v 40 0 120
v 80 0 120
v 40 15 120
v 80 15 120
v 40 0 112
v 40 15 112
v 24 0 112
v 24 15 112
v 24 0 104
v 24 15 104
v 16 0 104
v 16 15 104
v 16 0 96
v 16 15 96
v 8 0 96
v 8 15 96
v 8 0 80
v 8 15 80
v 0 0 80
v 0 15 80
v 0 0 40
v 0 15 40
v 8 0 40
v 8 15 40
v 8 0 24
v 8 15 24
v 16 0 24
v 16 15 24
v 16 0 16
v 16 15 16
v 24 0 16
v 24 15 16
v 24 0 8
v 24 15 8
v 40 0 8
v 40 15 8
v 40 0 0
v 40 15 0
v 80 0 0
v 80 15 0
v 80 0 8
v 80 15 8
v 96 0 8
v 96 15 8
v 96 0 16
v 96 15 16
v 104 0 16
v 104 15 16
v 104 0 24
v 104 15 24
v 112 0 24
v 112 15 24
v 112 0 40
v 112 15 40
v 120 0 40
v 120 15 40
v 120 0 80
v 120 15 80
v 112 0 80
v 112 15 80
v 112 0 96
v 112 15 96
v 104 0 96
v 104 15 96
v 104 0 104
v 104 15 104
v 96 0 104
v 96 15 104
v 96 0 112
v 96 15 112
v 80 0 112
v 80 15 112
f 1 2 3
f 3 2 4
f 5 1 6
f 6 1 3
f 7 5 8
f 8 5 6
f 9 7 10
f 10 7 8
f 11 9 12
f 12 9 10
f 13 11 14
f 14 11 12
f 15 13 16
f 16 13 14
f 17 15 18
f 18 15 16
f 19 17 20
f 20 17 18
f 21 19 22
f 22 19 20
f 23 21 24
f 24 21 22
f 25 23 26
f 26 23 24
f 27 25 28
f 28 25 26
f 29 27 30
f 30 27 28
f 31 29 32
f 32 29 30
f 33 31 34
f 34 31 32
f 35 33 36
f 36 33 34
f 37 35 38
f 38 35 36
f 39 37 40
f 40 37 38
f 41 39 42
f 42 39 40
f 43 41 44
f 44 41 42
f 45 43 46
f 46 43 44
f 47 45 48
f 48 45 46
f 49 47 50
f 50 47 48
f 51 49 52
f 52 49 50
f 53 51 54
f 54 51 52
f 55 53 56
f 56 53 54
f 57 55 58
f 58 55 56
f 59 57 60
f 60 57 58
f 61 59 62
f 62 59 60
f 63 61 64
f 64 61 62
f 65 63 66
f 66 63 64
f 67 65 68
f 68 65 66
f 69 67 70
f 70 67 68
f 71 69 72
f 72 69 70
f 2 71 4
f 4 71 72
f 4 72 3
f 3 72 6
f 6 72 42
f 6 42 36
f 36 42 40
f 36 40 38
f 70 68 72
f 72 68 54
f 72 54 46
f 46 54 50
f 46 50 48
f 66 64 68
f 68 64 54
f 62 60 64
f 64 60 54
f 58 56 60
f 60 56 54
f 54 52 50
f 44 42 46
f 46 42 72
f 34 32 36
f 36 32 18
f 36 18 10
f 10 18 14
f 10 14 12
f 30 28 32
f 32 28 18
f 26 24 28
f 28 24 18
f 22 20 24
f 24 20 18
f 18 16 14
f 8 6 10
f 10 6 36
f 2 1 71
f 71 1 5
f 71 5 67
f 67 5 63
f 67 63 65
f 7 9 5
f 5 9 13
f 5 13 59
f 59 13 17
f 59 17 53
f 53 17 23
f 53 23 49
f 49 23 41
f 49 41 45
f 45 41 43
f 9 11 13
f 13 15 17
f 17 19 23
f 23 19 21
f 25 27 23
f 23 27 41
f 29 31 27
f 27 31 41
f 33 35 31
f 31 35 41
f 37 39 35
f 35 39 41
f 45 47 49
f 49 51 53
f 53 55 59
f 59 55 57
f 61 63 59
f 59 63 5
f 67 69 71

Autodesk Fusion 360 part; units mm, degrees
sketch "Sketch1" plane through (0, 0, 0) normal (0, 1, 0) x (1, 0, 0)
  line L0 (0, 0) -> (-8, 0)
  line L1 (0, 0) -> (0, -8)
  line L2 (0, 0) -> (8, 0)
  line L3 (8, 0) -> (8, -8)
  line L4 (8, -8) -> (0, -8)
  line L5 (0, -8) -> (0, 0)
  line L6 (8, -8) -> (8, 0)
  line L7 (8, 0) -> (16, 0)
  line L8 (16, 0) -> (16, -8)
  line L9 (16, -8) -> (8, -8)
  line L10 (16, -8) -> (16, 0)
  line L11 (16, 0) -> (24, 0)
  line L12 (24, 0) -> (24, -8)
  line L13 (24, -8) -> (16, -8)
  line L14 (24, -8) -> (24, 0)
  line L15 (24, 0) -> (32, 0)
  line L16 (32, 0) -> (32, -8)
  line L17 (32, -8) -> (24, -8)
  line L18 (32, -8) -> (32, 0)
  line L19 (32, 0) -> (40, 0)
  line L20 (40, 0) -> (40, -8)
  line L21 (40, -8) -> (32, -8)
  line L22 (40, -8) -> (40, 0)
  line L23 (40, 0) -> (48, 0)
  line L24 (48, 0) -> (48, -8)
  line L25 (48, -8) -> (40, -8)
  line L26 (48, -8) -> (48, 0)
  line L27 (48, 0) -> (56, 0)
  line L28 (56, 0) -> (56, -8)
  line L29 (56, -8) -> (48, -8)
  line L30 (56, -8) -> (56, 0)
  line L31 (56, 0) -> (64, 0)
  line L32 (64, 0) -> (64, -8)
  line L33 (64, -8) -> (56, -8)
  line L34 (64, -8) -> (64, 0)
  line L35 (64, 0) -> (72, 0)
  line L36 (72, 0) -> (72, -8)
  line L37 (72, -8) -> (64, -8)
  line L38 (72, -8) -> (72, 0)
  line L39 (72, 0) -> (80, 0)
  line L40 (80, 0) -> (80, -8)
  line L41 (80, -8) -> (72, -8)
  line L42 (80, -8) -> (80, 0)
  line L43 (80, 0) -> (88, 0)
  line L44 (88, 0) -> (88, -8)
  line L45 (88, -8) -> (80, -8)
  line L46 (88, -8) -> (88, 0)
  line L47 (88, 0) -> (96, 0)
  line L48 (96, 0) -> (96, -8)
  line L49 (96, -8) -> (88, -8)
  line L50 (96, -8) -> (96, 0)
  line L51 (96, 0) -> (104, 0)
  line L52 (104, 0) -> (104, -8)
  line L53 (104, -8) -> (96, -8)
  line L54 (104, -8) -> (104, 0)
  line L55 (104, 0) -> (112, 0)
  line L56 (112, 0) -> (112, -8)
  line L57 (112, -8) -> (104, -8)
  line L58 (112, -8) -> (112, 0)
  line L59 (112, 0) -> (120, 0)
  line L60 (120, 0) -> (120, -8)
  line L61 (120, -8) -> (112, -8)
  line L62 (32, -8) -> (32, -16)
  line L63 (72, -8) -> (72, -16)
  line L64 (8, -16) -> (8, -8)
  line L65 (32, -16) -> (32, -8)
  line L66 (64, -8) -> (64, -16)
  line L67 (80, -8) -> (80, -16)
  line L68 (32, -8) -> (40, -8)
  line L69 (8, -8) -> (16, -8)
  line L70 (56, -16) -> (56, -8)
  line L71 (80, -16) -> (80, -8)
  line L72 (64, -8) -> (72, -8)
  line L73 (96, -8) -> (96, -16)
  line L74 (48, -8) -> (56, -8)
  line L75 (88, -16) -> (88, -8)
  line L76 (48, -8) -> (48, -16)
  line L77 (0, -16) -> (0, -8)
  line L78 (104, -8) -> (104, -16)
  line L79 (88, -8) -> (88, -16)
  line L80 (24, -8) -> (32, -8)
  line L81 (16, -8) -> (24, -8)
  line L82 (8, -8) -> (8, -16)
  line L83 (0, -8) -> (8, -8)
  line L84 (88, -8) -> (96, -8)
  line L85 (24, -16) -> (24, -8)
  line L86 (48, -16) -> (48, -8)
  line L87 (56, -8) -> (64, -8)
  line L88 (16, -8) -> (16, -16)
  line L89 (24, -8) -> (24, -16)
  line L90 (80, -8) -> (88, -8)
  line L91 (96, -8) -> (104, -8)
  line L92 (40, -8) -> (40, -16)
  line L93 (72, -16) -> (72, -8)
  line L94 (104, -16) -> (104, -8)
  line L95 (64, -16) -> (64, -8)
  line L96 (40, -16) -> (40, -8)
  line L97 (104, -8) -> (112, -8)
  line L98 (96, -16) -> (96, -8)
  line L99 (72, -8) -> (80, -8)
  line L100 (56, -8) -> (56, -16)
  line L101 (16, -16) -> (16, -8)
  line L102 (0, -8) -> (0, -16)
  line L103 (40, -8) -> (48, -8)
  line L104 (104, -16) -> (96, -16)
  line L105 (112, -16) -> (104, -16)
  line L106 (96, -16) -> (88, -16)
  line L107 (64, -16) -> (56, -16)
  line L108 (120, -16) -> (112, -16)
  line L109 (24, -16) -> (16, -16)
  line L110 (88, -16) -> (80, -16)
  line L111 (56, -16) -> (48, -16)
  line L112 (72, -16) -> (64, -16)
  line L113 (80, -16) -> (72, -16)
  line L114 (40, -16) -> (32, -16)
  line L115 (32, -16) -> (24, -16)
  line L116 (8, -16) -> (0, -16)
  line L117 (48, -16) -> (40, -16)
  line L118 (16, -16) -> (8, -16)
  line L119 (120, -8) -> (120, -16)
  line L120 (112, -8) -> (120, -8)
  line L121 (112, -16) -> (112, -8)
  line L122 (32, -16) -> (32, -24)
  line L123 (72, -16) -> (72, -24)
  line L124 (8, -24) -> (8, -16)
  line L125 (32, -24) -> (32, -16)
  line L126 (64, -16) -> (64, -24)
  line L127 (80, -16) -> (80, -24)
  line L128 (32, -16) -> (40, -16)
  line L129 (8, -16) -> (16, -16)
  line L130 (56, -24) -> (56, -16)
  line L131 (80, -24) -> (80, -16)
  line L132 (64, -16) -> (72, -16)
  line L133 (96, -16) -> (96, -24)
  line L134 (48, -16) -> (56, -16)
  line L135 (88, -24) -> (88, -16)
  line L136 (48, -16) -> (48, -24)
  line L137 (0, -24) -> (0, -16)
  line L138 (104, -16) -> (104, -24)
  line L139 (88, -16) -> (88, -24)
  line L140 (24, -16) -> (32, -16)
  line L141 (16, -16) -> (24, -16)
  line L142 (8, -16) -> (8, -24)
  line L143 (0, -16) -> (8, -16)
  line L144 (88, -16) -> (96, -16)
  line L145 (24, -24) -> (24, -16)
  line L146 (48, -24) -> (48, -16)
  line L147 (56, -16) -> (64, -16)
  line L148 (16, -16) -> (16, -24)
  line L149 (24, -16) -> (24, -24)
  line L150 (80, -16) -> (88, -16)
  line L151 (96, -16) -> (104, -16)
  line L152 (40, -16) -> (40, -24)
  line L153 (72, -24) -> (72, -16)
  line L154 (104, -24) -> (104, -16)
  line L155 (64, -24) -> (64, -16)
  line L156 (40, -24) -> (40, -16)
  line L157 (104, -16) -> (112, -16)
  line L158 (96, -24) -> (96, -16)
  line L159 (72, -16) -> (80, -16)
  line L160 (56, -16) -> (56, -24)
  line L161 (16, -24) -> (16, -16)
  line L162 (0, -16) -> (0, -24)
  line L163 (40, -16) -> (48, -16)
  line L164 (104, -24) -> (96, -24)
  line L165 (112, -24) -> (104, -24)
  line L166 (96, -24) -> (88, -24)
  line L167 (64, -24) -> (56, -24)
  line L168 (120, -24) -> (112, -24)
  line L169 (24, -24) -> (16, -24)
  line L170 (88, -24) -> (80, -24)
  line L171 (56, -24) -> (48, -24)
  line L172 (72, -24) -> (64, -24)
  line L173 (80, -24) -> (72, -24)
  line L174 (40, -24) -> (32, -24)
  line L175 (32, -24) -> (24, -24)
  line L176 (8, -24) -> (0, -24)
  line L177 (48, -24) -> (40, -24)
  line L178 (16, -24) -> (8, -24)
  line L179 (120, -16) -> (120, -24)
  line L180 (112, -16) -> (120, -16)
  line L181 (112, -24) -> (112, -16)
  line L182 (32, -24) -> (32, -32)
  line L183 (72, -24) -> (72, -32)
  line L184 (8, -32) -> (8, -24)
  line L185 (32, -32) -> (32, -24)
  line L186 (64, -24) -> (64, -32)
  line L187 (80, -24) -> (80, -32)
  line L188 (32, -24) -> (40, -24)
  line L189 (8, -24) -> (16, -24)
  line L190 (56, -32) -> (56, -24)
  line L191 (80, -32) -> (80, -24)
  line L192 (64, -24) -> (72, -24)
  line L193 (96, -24) -> (96, -32)
  line L194 (48, -24) -> (56, -24)
  line L195 (88, -32) -> (88, -24)
  line L196 (48, -24) -> (48, -32)
  line L197 (0, -32) -> (0, -24)
  line L198 (104, -24) -> (104, -32)
  line L199 (88, -24) -> (88, -32)
  line L200 (24, -24) -> (32, -24)
  line L201 (16, -24) -> (24, -24)
  line L202 (8, -24) -> (8, -32)
  line L203 (0, -24) -> (8, -24)
  line L204 (88, -24) -> (96, -24)
  line L205 (24, -32) -> (24, -24)
  line L206 (48, -32) -> (48, -24)
  line L207 (56, -24) -> (64, -24)
  line L208 (16, -24) -> (16, -32)
  line L209 (24, -24) -> (24, -32)
  line L210 (80, -24) -> (88, -24)
  line L211 (96, -24) -> (104, -24)
  line L212 (40, -24) -> (40, -32)
  line L213 (72, -32) -> (72, -24)
  line L214 (104, -32) -> (104, -24)
  line L215 (64, -32) -> (64, -24)
  line L216 (40, -32) -> (40, -24)
  line L217 (104, -24) -> (112, -24)
  line L218 (96, -32) -> (96, -24)
  line L219 (72, -24) -> (80, -24)
  line L220 (56, -24) -> (56, -32)
  line L221 (16, -32) -> (16, -24)
  line L222 (0, -24) -> (0, -32)
  line L223 (40, -24) -> (48, -24)
  line L224 (104, -32) -> (96, -32)
  line L225 (112, -32) -> (104, -32)
  line L226 (96, -32) -> (88, -32)
  line L227 (64, -32) -> (56, -32)
  line L228 (120, -32) -> (112, -32)
  line L229 (24, -32) -> (16, -32)
  line L230 (88, -32) -> (80, -32)
  line L231 (56, -32) -> (48, -32)
  line L232 (72, -32) -> (64, -32)
  line L233 (80, -32) -> (72, -32)
  line L234 (40, -32) -> (32, -32)
  line L235 (32, -32) -> (24, -32)
  line L236 (8, -32) -> (0, -32)
  line L237 (48, -32) -> (40, -32)
  line L238 (16, -32) -> (8, -32)
  line L239 (120, -24) -> (120, -32)
  line L240 (112, -24) -> (120, -24)
  line L241 (112, -32) -> (112, -24)
  line L242 (32, -32) -> (32, -40)
  line L243 (72, -32) -> (72, -40)
  line L244 (8, -40) -> (8, -32)
  line L245 (32, -40) -> (32, -32)
  line L246 (64, -32) -> (64, -40)
  line L247 (80, -32) -> (80, -40)
  line L248 (32, -32) -> (40, -32)
  line L249 (8, -32) -> (16, -32)
  line L250 (56, -40) -> (56, -32)
  line L251 (80, -40) -> (80, -32)
  line L252 (64, -32) -> (72, -32)
  line L253 (96, -32) -> (96, -40)
  line L254 (48, -32) -> (56, -32)
  line L255 (88, -40) -> (88, -32)
  line L256 (48, -32) -> (48, -40)
  line L257 (0, -40) -> (0, -32)
  line L258 (104, -32) -> (104, -40)
  line L259 (88, -32) -> (88, -40)
  line L260 (24, -32) -> (32, -32)
  line L261 (16, -32) -> (24, -32)
  line L262 (8, -32) -> (8, -40)
  line L263 (0, -32) -> (8, -32)
  line L264 (88, -32) -> (96, -32)
  line L265 (24, -40) -> (24, -32)
  line L266 (48, -40) -> (48, -32)
  line L267 (56, -32) -> (64, -32)
  line L268 (16, -32) -> (16, -40)
  line L269 (24, -32) -> (24, -40)
  line L270 (80, -32) -> (88, -32)
  line L271 (96, -32) -> (104, -32)
  line L272 (40, -32) -> (40, -40)
  line L273 (72, -40) -> (72, -32)
  line L274 (104, -40) -> (104, -32)
  line L275 (64, -40) -> (64, -32)
  line L276 (40, -40) -> (40, -32)
  line L277 (104, -32) -> (112, -32)
  line L278 (96, -40) -> (96, -32)
  line L279 (72, -32) -> (80, -32)
  line L280 (56, -32) -> (56, -40)
  line L281 (16, -40) -> (16, -32)
  line L282 (0, -32) -> (0, -40)
  line L283 (40, -32) -> (48, -32)
  line L284 (104, -40) -> (96, -40)
  line L285 (112, -40) -> (104, -40)
  line L286 (96, -40) -> (88, -40)
  line L287 (64, -40) -> (56, -40)
  line L288 (120, -40) -> (112, -40)
  line L289 (24, -40) -> (16, -40)
  line L290 (88, -40) -> (80, -40)
  line L291 (56, -40) -> (48, -40)
  line L292 (72, -40) -> (64, -40)
  line L293 (80, -40) -> (72, -40)
  line L294 (40, -40) -> (32, -40)
  line L295 (32, -40) -> (24, -40)
  line L296 (8, -40) -> (0, -40)
  line L297 (48, -40) -> (40, -40)
  line L298 (16, -40) -> (8, -40)
  line L299 (120, -32) -> (120, -40)
  line L300 (112, -32) -> (120, -32)
  line L301 (112, -40) -> (112, -32)
  line L302 (32, -40) -> (32, -48)
  line L303 (72, -40) -> (72, -48)
  line L304 (8, -48) -> (8, -40)
  line L305 (32, -48) -> (32, -40)
  line L306 (64, -40) -> (64, -48)
  line L307 (80, -40) -> (80, -48)
  line L308 (32, -40) -> (40, -40)
  line L309 (8, -40) -> (16, -40)
  line L310 (56, -48) -> (56, -40)
  line L311 (80, -48) -> (80, -40)
  line L312 (64, -40) -> (72, -40)
  line L313 (96, -40) -> (96, -48)
  line L314 (48, -40) -> (56, -40)
  line L315 (88, -48) -> (88, -40)
  line L316 (48, -40) -> (48, -48)
  line L317 (0, -48) -> (0, -40)
  line L318 (104, -40) -> (104, -48)
  line L319 (88, -40) -> (88, -48)
  line L320 (24, -40) -> (32, -40)
  line L321 (16, -40) -> (24, -40)
  line L322 (8, -40) -> (8, -48)
  line L323 (0, -40) -> (8, -40)
  line L324 (88, -40) -> (96, -40)
  line L325 (24, -48) -> (24, -40)
  line L326 (48, -48) -> (48, -40)
  line L327 (56, -40) -> (64, -40)
  line L328 (16, -40) -> (16, -48)
  line L329 (24, -40) -> (24, -48)
  line L330 (80, -40) -> (88, -40)
  line L331 (96, -40) -> (104, -40)
  line L332 (40, -40) -> (40, -48)
  line L333 (72, -48) -> (72, -40)
  line L334 (104, -48) -> (104, -40)
  line L335 (64, -48) -> (64, -40)
  line L336 (40, -48) -> (40, -40)
  line L337 (104, -40) -> (112, -40)
  line L338 (96, -48) -> (96, -40)
  line L339 (72, -40) -> (80, -40)
  line L340 (56, -40) -> (56, -48)
  line L341 (16, -48) -> (16, -40)
  line L342 (0, -40) -> (0, -48)
  line L343 (40, -40) -> (48, -40)
  line L344 (104, -48) -> (96, -48)
  line L345 (112, -48) -> (104, -48)
  line L346 (96, -48) -> (88, -48)
  line L347 (64, -48) -> (56, -48)
  line L348 (120, -48) -> (112, -48)
  line L349 (24, -48) -> (16, -48)
  line L350 (88, -48) -> (80, -48)
  line L351 (56, -48) -> (48, -48)
  line L352 (72, -48) -> (64, -48)
  line L353 (80, -48) -> (72, -48)
  line L354 (40, -48) -> (32, -48)
  line L355 (32, -48) -> (24, -48)
  line L356 (8, -48) -> (0, -48)
  line L357 (48, -48) -> (40, -48)
  line L358 (16, -48) -> (8, -48)
  line L359 (120, -40) -> (120, -48)
  line L360 (112, -40) -> (120, -40)
  line L361 (112, -48) -> (112, -40)
  line L362 (32, -48) -> (32, -56)
  line L363 (72, -48) -> (72, -56)
  line L364 (8, -56) -> (8, -48)
  line L365 (32, -56) -> (32, -48)
  line L366 (64, -48) -> (64, -56)
  line L367 (80, -48) -> (80, -56)
  line L368 (32, -48) -> (40, -48)
  line L369 (8, -48) -> (16, -48)
  line L370 (56, -56) -> (56, -48)
  line L371 (80, -56) -> (80, -48)
  line L372 (64, -48) -> (72, -48)
  line L373 (96, -48) -> (96, -56)
  line L374 (48, -48) -> (56, -48)
  line L375 (88, -56) -> (88, -48)
  line L376 (48, -48) -> (48, -56)
  line L377 (0, -56) -> (0, -48)
  line L378 (104, -48) -> (104, -56)
  line L379 (88, -48) -> (88, -56)
  line L380 (24, -48) -> (32, -48)
  line L381 (16, -48) -> (24, -48)
  line L382 (8, -48) -> (8, -56)
  line L383 (0, -48) -> (8, -48)
  line L384 (88, -48) -> (96, -48)
  line L385 (24, -56) -> (24, -48)
  line L386 (48, -56) -> (48, -48)
  line L387 (56, -48) -> (64, -48)
  line L388 (16, -48) -> (16, -56)
  line L389 (24, -48) -> (24, -56)
  line L390 (80, -48) -> (88, -48)
  line L391 (96, -48) -> (104, -48)
  line L392 (40, -48) -> (40, -56)
  line L393 (72, -56) -> (72, -48)
  line L394 (104, -56) -> (104, -48)
  line L395 (64, -56) -> (64, -48)
  line L396 (40, -56) -> (40, -48)
  line L397 (104, -48) -> (112, -48)
  line L398 (96, -56) -> (96, -48)
  line L399 (72, -48) -> (80, -48)
  line L400 (56, -48) -> (56, -56)
  line L401 (16, -56) -> (16, -48)
  line L402 (0, -48) -> (0, -56)
  line L403 (40, -48) -> (48, -48)
  line L404 (104, -56) -> (96, -56)
  line L405 (112, -56) -> (104, -56)
  line L406 (96, -56) -> (88, -56)
  line L407 (64, -56) -> (56, -56)
  line L408 (120, -56) -> (112, -56)
  line L409 (24, -56) -> (16, -56)
  line L410 (88, -56) -> (80, -56)
  line L411 (56, -56) -> (48, -56)
  line L412 (72, -56) -> (64, -56)
  line L413 (80, -56) -> (72, -56)
  line L414 (40, -56) -> (32, -56)
  line L415 (32, -56) -> (24, -56)
  line L416 (8, -56) -> (0, -56)
  line L417 (48, -56) -> (40, -56)
  line L418 (16, -56) -> (8, -56)
  line L419 (120, -48) -> (120, -56)
  line L420 (112, -48) -> (120, -48)
  line L421 (112, -56) -> (112, -48)
  line L422 (32, -56) -> (32, -64)
  line L423 (72, -56) -> (72, -64)
  line L424 (8, -64) -> (8, -56)
  line L425 (32, -64) -> (32, -56)
  line L426 (64, -56) -> (64, -64)
  line L427 (80, -56) -> (80, -64)
  line L428 (32, -56) -> (40, -56)
  line L429 (8, -56) -> (16, -56)
  line L430 (56, -64) -> (56, -56)
  line L431 (80, -64) -> (80, -56)
  line L432 (64, -56) -> (72, -56)
  line L433 (96, -56) -> (96, -64)
  line L434 (48, -56) -> (56, -56)
  line L435 (88, -64) -> (88, -56)
  line L436 (48, -56) -> (48, -64)
  line L437 (0, -64) -> (0, -56)
  line L438 (104, -56) -> (104, -64)
  line L439 (88, -56) -> (88, -64)
  line L440 (24, -56) -> (32, -56)
  line L441 (16, -56) -> (24, -56)
  line L442 (8, -56) -> (8, -64)
  line L443 (0, -56) -> (8, -56)
  line L444 (88, -56) -> (96, -56)
  line L445 (24, -64) -> (24, -56)
  line L446 (48, -64) -> (48, -56)
  line L447 (56, -56) -> (64, -56)
  line L448 (16, -56) -> (16, -64)
  line L449 (24, -56) -> (24, -64)
  line L450 (80, -56) -> (88, -56)
  line L451 (96, -56) -> (104, -56)
  line L452 (40, -56) -> (40, -64)
  line L453 (72, -64) -> (72, -56)
  line L454 (104, -64) -> (104, -56)
  line L455 (64, -64) -> (64, -56)
  line L456 (40, -64) -> (40, -56)
  line L457 (104, -56) -> (112, -56)
  line L458 (96, -64) -> (96, -56)
  line L459 (72, -56) -> (80, -56)
  line L460 (56, -56) -> (56, -64)
  line L461 (16, -64) -> (16, -56)
  line L462 (0, -56) -> (0, -64)
  line L463 (40, -56) -> (48, -56)
  line L464 (104, -64) -> (96, -64)
  line L465 (112, -64) -> (104, -64)
  line L466 (96, -64) -> (88, -64)
  line L467 (64, -64) -> (56, -64)
  line L468 (120, -64) -> (112, -64)
  line L469 (24, -64) -> (16, -64)
  line L470 (88, -64) -> (80, -64)
  line L471 (56, -64) -> (48, -64)
  line L472 (72, -64) -> (64, -64)
  line L473 (80, -64) -> (72, -64)
  line L474 (40, -64) -> (32, -64)
  line L475 (32, -64) -> (24, -64)
  line L476 (8, -64) -> (0, -64)
  line L477 (48, -64) -> (40, -64)
  line L478 (16, -64) -> (8, -64)
  line L479 (120, -56) -> (120, -64)
  line L480 (112, -56) -> (120, -56)
  line L481 (112, -64) -> (112, -56)
  line L482 (32, -64) -> (32, -72)
  line L483 (72, -64) -> (72, -72)
  line L484 (8, -72) -> (8, -64)
  line L485 (32, -72) -> (32, -64)
  line L486 (64, -64) -> (64, -72)
  line L487 (80, -64) -> (80, -72)
  line L488 (32, -64) -> (40, -64)
  line L489 (8, -64) -> (16, -64)
  line L490 (56, -72) -> (56, -64)
  line L491 (80, -72) -> (80, -64)
  line L492 (64, -64) -> (72, -64)
  line L493 (96, -64) -> (96, -72)
  line L494 (48, -64) -> (56, -64)
  line L495 (88, -72) -> (88, -64)
  line L496 (48, -64) -> (48, -72)
  line L497 (0, -72) -> (0, -64)
  line L498 (104, -64) -> (104, -72)
  line L499 (88, -64) -> (88, -72)
  line L500 (24, -64) -> (32, -64)
  line L501 (16, -64) -> (24, -64)
  line L502 (8, -64) -> (8, -72)
  line L503 (0, -64) -> (8, -64)
  line L504 (88, -64) -> (96, -64)
  line L505 (24, -72) -> (24, -64)
  line L506 (48, -72) -> (48, -64)
  line L507 (56, -64) -> (64, -64)
  line L508 (16, -64) -> (16, -72)
  line L509 (24, -64) -> (24, -72)
  line L510 (80, -64) -> (88, -64)
  line L511 (96, -64) -> (104, -64)
  line L512 (40, -64) -> (40, -72)
  line L513 (72, -72) -> (72, -64)
  line L514 (104, -72) -> (104, -64)
  line L515 (64, -72) -> (64, -64)
  line L516 (40, -72) -> (40, -64)
  line L517 (104, -64) -> (112, -64)
  line L518 (96, -72) -> (96, -64)
  line L519 (72, -64) -> (80, -64)
  line L520 (56, -64) -> (56, -72)
  line L521 (16, -72) -> (16, -64)
  line L522 (0, -64) -> (0, -72)
  line L523 (40, -64) -> (48, -64)
  line L524 (104, -72) -> (96, -72)
  line L525 (112, -72) -> (104, -72)
  line L526 (96, -72) -> (88, -72)
  line L527 (64, -72) -> (56, -72)
  line L528 (120, -72) -> (112, -72)
  line L529 (24, -72) -> (16, -72)
  line L530 (88, -72) -> (80, -72)
  line L531 (56, -72) -> (48, -72)
  line L532 (72, -72) -> (64, -72)
  line L533 (80, -72) -> (72, -72)
  line L534 (40, -72) -> (32, -72)
  line L535 (32, -72) -> (24, -72)
  line L536 (8, -72) -> (0, -72)
  line L537 (48, -72) -> (40, -72)
  line L538 (16, -72) -> (8, -72)
  line L539 (120, -64) -> (120, -72)
  line L540 (112, -64) -> (120, -64)
  line L541 (112, -72) -> (112, -64)
  line L542 (32, -72) -> (32, -80)
  line L543 (72, -72) -> (72, -80)
  line L544 (8, -80) -> (8, -72)
  line L545 (32, -80) -> (32, -72)
  line L546 (64, -72) -> (64, -80)
  line L547 (80, -72) -> (80, -80)
  line L548 (32, -72) -> (40, -72)
  line L549 (8, -72) -> (16, -72)
  line L550 (56, -80) -> (56, -72)
  line L551 (80, -80) -> (80, -72)
  line L552 (64, -72) -> (72, -72)
  line L553 (96, -72) -> (96, -80)
  line L554 (48, -72) -> (56, -72)
  line L555 (88, -80) -> (88, -72)
  line L556 (48, -72) -> (48, -80)
  line L557 (0, -80) -> (0, -72)
  line L558 (104, -72) -> (104, -80)
  line L559 (88, -72) -> (88, -80)
  line L560 (24, -72) -> (32, -72)
  line L561 (16, -72) -> (24, -72)
  line L562 (8, -72) -> (8, -80)
  line L563 (0, -72) -> (8, -72)
  line L564 (88, -72) -> (96, -72)
  line L565 (24, -80) -> (24, -72)
  line L566 (48, -80) -> (48, -72)
  line L567 (56, -72) -> (64, -72)
  line L568 (16, -72) -> (16, -80)
  line L569 (24, -72) -> (24, -80)
  line L570 (80, -72) -> (88, -72)
  line L571 (96, -72) -> (104, -72)
  line L572 (40, -72) -> (40, -80)
  line L573 (72, -80) -> (72, -72)
  line L574 (104, -80) -> (104, -72)
  line L575 (64, -80) -> (64, -72)
  line L576 (40, -80) -> (40, -72)
  line L577 (104, -72) -> (112, -72)
  line L578 (96, -80) -> (96, -72)
  line L579 (72, -72) -> (80, -72)
  line L580 (56, -72) -> (56, -80)
  line L581 (16, -80) -> (16, -72)
  line L582 (0, -72) -> (0, -80)
  line L583 (40, -72) -> (48, -72)
  line L584 (104, -80) -> (96, -80)
  line L585 (112, -80) -> (104, -80)
  line L586 (96, -80) -> (88, -80)
  line L587 (64, -80) -> (56, -80)
  line L588 (120, -80) -> (112, -80)
  line L589 (24, -80) -> (16, -80)
  line L590 (88, -80) -> (80, -80)
  line L591 (56, -80) -> (48, -80)
  line L592 (72, -80) -> (64, -80)
  line L593 (80, -80) -> (72, -80)
  line L594 (40, -80) -> (32, -80)
  line L595 (32, -80) -> (24, -80)
  line L596 (8, -80) -> (0, -80)
  line L597 (48, -80) -> (40, -80)
  line L598 (16, -80) -> (8, -80)
  line L599 (120, -72) -> (120, -80)
  line L600 (112, -72) -> (120, -72)
  line L601 (112, -80) -> (112, -72)
  line L602 (32, -80) -> (32, -88)
  line L603 (72, -80) -> (72, -88)
  line L604 (8, -88) -> (8, -80)
  line L605 (32, -88) -> (32, -80)
  line L606 (64, -80) -> (64, -88)
  line L607 (80, -80) -> (80, -88)
  line L608 (32, -80) -> (40, -80)
  line L609 (8, -80) -> (16, -80)
  line L610 (56, -88) -> (56, -80)
  line L611 (80, -88) -> (80, -80)
  line L612 (64, -80) -> (72, -80)
  line L613 (96, -80) -> (96, -88)
  line L614 (48, -80) -> (56, -80)
  line L615 (88, -88) -> (88, -80)
  line L616 (48, -80) -> (48, -88)
  line L617 (0, -88) -> (0, -80)
  line L618 (104, -80) -> (104, -88)
  line L619 (88, -80) -> (88, -88)
  line L620 (24, -80) -> (32, -80)
  line L621 (16, -80) -> (24, -80)
  line L622 (8, -80) -> (8, -88)
  line L623 (0, -80) -> (8, -80)
  line L624 (88, -80) -> (96, -80)
  line L625 (24, -88) -> (24, -80)
  line L626 (48, -88) -> (48, -80)
  line L627 (56, -80) -> (64, -80)
  line L628 (16, -80) -> (16, -88)
  line L629 (24, -80) -> (24, -88)
  line L630 (80, -80) -> (88, -80)
  line L631 (96, -80) -> (104, -80)
  line L632 (40, -80) -> (40, -88)
  line L633 (72, -88) -> (72, -80)
  line L634 (104, -88) -> (104, -80)
  line L635 (64, -88) -> (64, -80)
  line L636 (40, -88) -> (40, -80)
  line L637 (104, -80) -> (112, -80)
  line L638 (96, -88) -> (96, -80)
  line L639 (72, -80) -> (80, -80)
  line L640 (56, -80) -> (56, -88)
  line L641 (16, -88) -> (16, -80)
  line L642 (0, -80) -> (0, -88)
  line L643 (40, -80) -> (48, -80)
  line L644 (104, -88) -> (96, -88)
  line L645 (112, -88) -> (104, -88)
  line L646 (96, -88) -> (88, -88)
  line L647 (64, -88) -> (56, -88)
  line L648 (120, -88) -> (112, -88)
  line L649 (24, -88) -> (16, -88)
  line L650 (88, -88) -> (80, -88)
  line L651 (56, -88) -> (48, -88)
  line L652 (72, -88) -> (64, -88)
  line L653 (80, -88) -> (72, -88)
  line L654 (40, -88) -> (32, -88)
  line L655 (32, -88) -> (24, -88)
  line L656 (8, -88) -> (0, -88)
  line L657 (48, -88) -> (40, -88)
  line L658 (16, -88) -> (8, -88)
  line L659 (120, -80) -> (120, -88)
  line L660 (112, -80) -> (120, -80)
  line L661 (112, -88) -> (112, -80)
  line L662 (32, -88) -> (32, -96)
  line L663 (72, -88) -> (72, -96)
  line L664 (8, -96) -> (8, -88)
  line L665 (32, -96) -> (32, -88)
  line L666 (64, -88) -> (64, -96)
  line L667 (80, -88) -> (80, -96)
  line L668 (32, -88) -> (40, -88)
  line L669 (8, -88) -> (16, -88)
  line L670 (56, -96) -> (56, -88)
  line L671 (80, -96) -> (80, -88)
  line L672 (64, -88) -> (72, -88)
  line L673 (96, -88) -> (96, -96)
  line L674 (48, -88) -> (56, -88)
  line L675 (88, -96) -> (88, -88)
  line L676 (48, -88) -> (48, -96)
  line L677 (0, -96) -> (0, -88)
  line L678 (104, -88) -> (104, -96)
  line L679 (88, -88) -> (88, -96)
  line L680 (24, -88) -> (32, -88)
  line L681 (16, -88) -> (24, -88)
  line L682 (8, -88) -> (8, -96)
  line L683 (0, -88) -> (8, -88)
  line L684 (88, -88) -> (96, -88)
  line L685 (24, -96) -> (24, -88)
  line L686 (48, -96) -> (48, -88)
  line L687 (56, -88) -> (64, -88)
  line L688 (16, -88) -> (16, -96)
  line L689 (24, -88) -> (24, -96)
  line L690 (80, -88) -> (88, -88)
  line L691 (96, -88) -> (104, -88)
  line L692 (40, -88) -> (40, -96)
  line L693 (72, -96) -> (72, -88)
  line L694 (104, -96) -> (104, -88)
  line L695 (64, -96) -> (64, -88)
  line L696 (40, -96) -> (40, -88)
  line L697 (104, -88) -> (112, -88)
  line L698 (96, -96) -> (96, -88)
  line L699 (72, -88) -> (80, -88)
  line L700 (56, -88) -> (56, -96)
  line L701 (16, -96) -> (16, -88)
  line L702 (0, -88) -> (0, -96)
  line L703 (40, -88) -> (48, -88)
  line L704 (104, -96) -> (96, -96)
  line L705 (112, -96) -> (104, -96)
  line L706 (96, -96) -> (88, -96)
  line L707 (64, -96) -> (56, -96)
  line L708 (120, -96) -> (112, -96)
  line L709 (24, -96) -> (16, -96)
  line L710 (88, -96) -> (80, -96)
  line L711 (56, -96) -> (48, -96)
  line L712 (72, -96) -> (64, -96)
  line L713 (80, -96) -> (72, -96)
  line L714 (40, -96) -> (32, -96)
  line L715 (32, -96) -> (24, -96)
  line L716 (8, -96) -> (0, -96)
  line L717 (48, -96) -> (40, -96)
  line L718 (16, -96) -> (8, -96)
  line L719 (120, -88) -> (120, -96)
  line L720 (112, -88) -> (120, -88)
  line L721 (112, -96) -> (112, -88)
  line L722 (32, -96) -> (32, -104)
  line L723 (72, -96) -> (72, -104)
  line L724 (8, -104) -> (8, -96)
  line L725 (32, -104) -> (32, -96)
  line L726 (64, -96) -> (64, -104)
  line L727 (80, -96) -> (80, -104)
  line L728 (32, -96) -> (40, -96)
  line L729 (8, -96) -> (16, -96)
  line L730 (56, -104) -> (56, -96)
  line L731 (80, -104) -> (80, -96)
  line L732 (64, -96) -> (72, -96)
  line L733 (96, -96) -> (96, -104)
  line L734 (48, -96) -> (56, -96)
  line L735 (88, -104) -> (88, -96)
  line L736 (48, -96) -> (48, -104)
  line L737 (0, -104) -> (0, -96)
  line L738 (104, -96) -> (104, -104)
  line L739 (88, -96) -> (88, -104)
  line L740 (24, -96) -> (32, -96)
  line L741 (16, -96) -> (24, -96)
  line L742 (8, -96) -> (8, -104)
  line L743 (0, -96) -> (8, -96)
  line L744 (88, -96) -> (96, -96)
  line L745 (24, -104) -> (24, -96)
  line L746 (48, -104) -> (48, -96)
  line L747 (56, -96) -> (64, -96)
  line L748 (16, -96) -> (16, -104)
  line L749 (24, -96) -> (24, -104)
  line L750 (80, -96) -> (88, -96)
  line L751 (96, -96) -> (104, -96)
  line L752 (40, -96) -> (40, -104)
  line L753 (72, -104) -> (72, -96)
  line L754 (104, -104) -> (104, -96)
  line L755 (64, -104) -> (64, -96)
  line L756 (40, -104) -> (40, -96)
  line L757 (104, -96) -> (112, -96)
  line L758 (96, -104) -> (96, -96)
  line L759 (72, -96) -> (80, -96)
  line L760 (56, -96) -> (56, -104)
  line L761 (16, -104) -> (16, -96)
  line L762 (0, -96) -> (0, -104)
  line L763 (40, -96) -> (48, -96)
  line L764 (104, -104) -> (96, -104)
  line L765 (112, -104) -> (104, -104)
  line L766 (96, -104) -> (88, -104)
  line L767 (64, -104) -> (56, -104)
  line L768 (120, -104) -> (112, -104)
  line L769 (24, -104) -> (16, -104)
  line L770 (88, -104) -> (80, -104)
  line L771 (56, -104) -> (48, -104)
  line L772 (72, -104) -> (64, -104)
  line L773 (80, -104) -> (72, -104)
  line L774 (40, -104) -> (32, -104)
  line L775 (32, -104) -> (24, -104)
  line L776 (8, -104) -> (0, -104)
  line L777 (48, -104) -> (40, -104)
  line L778 (16, -104) -> (8, -104)
  line L779 (120, -96) -> (120, -104)
  line L780 (112, -96) -> (120, -96)
  line L781 (112, -104) -> (112, -96)
  line L782 (32, -104) -> (32, -112)
  line L783 (72, -104) -> (72, -112)
  line L784 (8, -112) -> (8, -104)
  line L785 (32, -112) -> (32, -104)
  line L786 (64, -104) -> (64, -112)
  line L787 (80, -104) -> (80, -112)
  line L788 (32, -104) -> (40, -104)
  line L789 (8, -104) -> (16, -104)
  line L790 (56, -112) -> (56, -104)
  line L791 (80, -112) -> (80, -104)
  line L792 (64, -104) -> (72, -104)
  line L793 (96, -104) -> (96, -112)
  line L794 (48, -104) -> (56, -104)
  line L795 (88, -112) -> (88, -104)
  line L796 (48, -104) -> (48, -112)
  line L797 (0, -112) -> (0, -104)
  line L798 (104, -104) -> (104, -112)
  line L799 (88, -104) -> (88, -112)
  line L800 (24, -104) -> (32, -104)
  line L801 (16, -104) -> (24, -104)
  line L802 (8, -104) -> (8, -112)
  line L803 (0, -104) -> (8, -104)
  line L804 (88, -104) -> (96, -104)
  line L805 (24, -112) -> (24, -104)
  line L806 (48, -112) -> (48, -104)
  line L807 (56, -104) -> (64, -104)
  line L808 (16, -104) -> (16, -112)
  line L809 (24, -104) -> (24, -112)
  line L810 (80, -104) -> (88, -104)
  line L811 (96, -104) -> (104, -104)
  line L812 (40, -104) -> (40, -112)
  line L813 (72, -112) -> (72, -104)
  line L814 (104, -112) -> (104, -104)
  line L815 (64, -112) -> (64, -104)
  line L816 (40, -112) -> (40, -104)
  line L817 (104, -104) -> (112, -104)
  line L818 (96, -112) -> (96, -104)
  line L819 (72, -104) -> (80, -104)
  line L820 (56, -104) -> (56, -112)
  line L821 (16, -112) -> (16, -104)
  line L822 (0, -104) -> (0, -112)
  line L823 (40, -104) -> (48, -104)
  line L824 (104, -112) -> (96, -112)
  line L825 (112, -112) -> (104, -112)
  line L826 (96, -112) -> (88, -112)
  line L827 (64, -112) -> (56, -112)
  line L828 (120, -112) -> (112, -112)
  line L829 (24, -112) -> (16, -112)
  line L830 (88, -112) -> (80, -112)
  line L831 (56, -112) -> (48, -112)
  line L832 (72, -112) -> (64, -112)
  line L833 (80, -112) -> (72, -112)
  line L834 (40, -112) -> (32, -112)
  line L835 (32, -112) -> (24, -112)
  line L836 (8, -112) -> (0, -112)
  line L837 (48, -112) -> (40, -112)
  line L838 (16, -112) -> (8, -112)
  line L839 (120, -104) -> (120, -112)
  line L840 (112, -104) -> (120, -104)
  line L841 (112, -112) -> (112, -104)
  line L842 (32, -112) -> (32, -120)
  line L843 (72, -112) -> (72, -120)
  line L844 (8, -120) -> (8, -112)
  line L845 (32, -120) -> (32, -112)
  line L846 (64, -112) -> (64, -120)
  line L847 (80, -112) -> (80, -120)
  line L848 (32, -112) -> (40, -112)
  line L849 (8, -112) -> (16, -112)
  line L850 (56, -120) -> (56, -112)
  line L851 (80, -120) -> (80, -112)
  line L852 (64, -112) -> (72, -112)
  line L853 (96, -112) -> (96, -120)
  line L854 (48, -112) -> (56, -112)
  line L855 (88, -120) -> (88, -112)
  line L856 (48, -112) -> (48, -120)
  line L857 (0, -120) -> (0, -112)
  line L858 (104, -112) -> (104, -120)
  line L859 (88, -112) -> (88, -120)
  line L860 (24, -112) -> (32, -112)
  line L861 (16, -112) -> (24, -112)
  line L862 (8, -112) -> (8, -120)
  line L863 (0, -112) -> (8, -112)
  line L864 (88, -112) -> (96, -112)
  line L865 (24, -120) -> (24, -112)
  line L866 (48, -120) -> (48, -112)
  line L867 (56, -112) -> (64, -112)
  line L868 (16, -112) -> (16, -120)
  line L869 (24, -112) -> (24, -120)
  line L870 (80, -112) -> (88, -112)
  line L871 (96, -112) -> (104, -112)
  line L872 (40, -112) -> (40, -120)
  line L873 (72, -120) -> (72, -112)
  line L874 (104, -120) -> (104, -112)
  line L875 (64, -120) -> (64, -112)
  line L876 (40, -120) -> (40, -112)
  line L877 (104, -112) -> (112, -112)
  line L878 (96, -120) -> (96, -112)
  line L879 (72, -112) -> (80, -112)
  line L880 (56, -112) -> (56, -120)
  line L881 (16, -120) -> (16, -112)
  line L882 (0, -112) -> (0, -120)
  line L883 (40, -112) -> (48, -112)
  line L884 (104, -120) -> (96, -120)
  line L885 (112, -120) -> (104, -120)
  line L886 (96, -120) -> (88, -120)
  line L887 (64, -120) -> (56, -120)
  line L888 (120, -120) -> (112, -120)
  line L889 (24, -120) -> (16, -120)
  line L890 (88, -120) -> (80, -120)
  line L891 (56, -120) -> (48, -120)
  line L892 (72, -120) -> (64, -120)
  line L893 (80, -120) -> (72, -120)
  line L894 (40, -120) -> (32, -120)
  line L895 (32, -120) -> (24, -120)
  line L896 (8, -120) -> (0, -120)
  line L897 (48, -120) -> (40, -120)
  line L898 (16, -120) -> (8, -120)
  line L899 (120, -112) -> (120, -120)
  line L900 (112, -112) -> (120, -112)
  line L901 (112, -120) -> (112, -112)
  point P0 (0, -8)
  point P1 (0, -8)
  point P2 (0, -16)
  point P3 (0, -16)
  point P4 (0, -24)
  point P5 (0, -24)
  point P6 (0, -32)
  point P7 (0, -32)
  point P8 (0, -40)
  point P9 (0, -40)
  point P10 (0, -48)
  point P11 (0, -48)
  point P12 (0, -56)
  point P13 (0, -56)
  point P14 (0, -64)
  point P15 (0, -64)
  point P16 (0, -72)
  point P17 (0, -72)
  point P18 (0, -80)
  point P19 (0, -80)
  point P20 (0, -88)
  point P21 (0, -88)
  point P22 (0, -96)
  point P23 (0, -96)
  point P24 (0, -104)
  point P25 (0, -104)
  point P26 (0, -112)
  point P27 (0, -112)
  dimension "d1" = 8
  dimension "d4" = 112
  dimension "d5" = 0
  dimension "d8" = 0
  dimension "d9" = -8
extrude "Extrude2" add sketch "Sketch1" along normal blind 15 contours L17 L62 L65 L80 L85 L89 L115 L140 | L109 L141 L145 L148 L149 L161 L169 L201 | L178 L184 L189 L202 L208 L221 L238 L249 | L21 L62 L65 L68 L92 L96 L114 L128 | L115 L122 L125 L140 L145 L149 L175 L200 | L169 L201 L205 L208 L209 L221 L229 L261 | L238 L244 L249 L262 L268 L281 L298 L309 | L296 L304 L317 L322 L323 L342 L356 L383 | L20 L22 L23 L24 L25 L26 L103 | L25 L76 L86 L92 L96 L103 L117 L163 | L114 L122 L125 L128 L152 L156 L174 L188 | L175 L182 L185 L200 L205 L209 L235 L260 | L229 L261 L265 L268 L269 L281 L289 L321 | L298 L304 L309 L322 L328 L341 L358 L369 | L356 L364 L377 L382 L383 L402 L416 L443 | L24 L26 L27 L28 L29 L30 L74 | L29 L70 L74 L76 L86 L100 L111 L134 | L117 L136 L146 L152 L156 L163 L177 L223 | L174 L182 L185 L188 L212 L216 L234 L248 | L235 L242 L245 L260 L265 L269 L295 L320 | L289 L321 L325 L328 L329 L341 L349 L381 | L358 L364 L369 L382 L388 L401 L418 L429 | L416 L424 L437 L442 L443 L462 L476 L503 | L28 L30 L31 L32 L33 L34 L87 | L33 L66 L70 L87 L95 L100 L107 L147 | L111 L130 L134 L136 L146 L160 L171 L194 | L177 L196 L206 L212 L216 L223 L237 L283 | L234 L242 L245 L248 L272 L276 L294 L308 | L295 L302 L305 L320 L325 L329 L355 L380 | L349 L381 L385 L388 L389 L401 L409 L441 | L418 L424 L429 L442 L448 L461 L478 L489 | L476 L484 L497 L502 L503 L522 L536 L563 | L32 L34 L35 L36 L37 L38 L72 | L37 L63 L66 L72 L93 L95 L112 L132 | L107 L126 L130 L147 L155 L160 L167 L207 | L171 L190 L194 L196 L206 L220 L231 L254 | L237 L256 L266 L272 L276 L283 L297 L343 | L294 L302 L305 L308 L332 L336 L354 L368 | L355 L362 L365 L380 L385 L389 L415 L440 | L409 L441 L445 L448 L449 L461 L469 L501 | L478 L484 L489 L502 L508 L521 L538 L549 | L536 L544 L557 L562 L563 L582 L596 L623 | L36 L38 L39 L40 L41 L42 L99 | L41 L63 L67 L71 L93 L99 L113 L159 | L112 L123 L126 L132 L153 L155 L172 L192 | L167 L186 L190 L207 L215 L220 L227 L267 | L231 L250 L254 L256 L266 L280 L291 L314 | L297 L316 L326 L332 L336 L343 L357 L403 | L354 L362 L365 L368 L392 L396 L414 L428 | L415 L422 L425 L440 L445 L449 L475 L500 | L469 L501 L505 L508 L509 L521 L529 L561 | L538 L544 L549 L562 L568 L581 L598 L609 | L45 L67 L71 L75 L79 L90 L110 L150 | L113 L123 L127 L131 L153 L159 L173 L219 | L172 L183 L186 L192 L213 L215 L232 L252 | L227 L246 L250 L267 L275 L280 L287 L327 | L291 L310 L314 L316 L326 L340 L351 L374 | L357 L376 L386 L392 L396 L403 L417 L463 | L414 L422 L425 L428 L452 L456 L474 L488 | L475 L482 L485 L500 L505 L509 L535 L560 | L529 L561 L565 L568 L569 L581 L589 L621 | L598 L604 L609 L622 L628 L641 L658 L669 | L49 L73 L75 L79 L84 L98 L106 L144 | L110 L127 L131 L135 L139 L150 L170 L210 | L173 L183 L187 L191 L213 L219 L233 L279 | L232 L243 L246 L252 L273 L275 L292 L312 | L287 L306 L310 L327 L335 L340 L347 L387 | L351 L370 L374 L376 L386 L400 L411 L434 | L417 L436 L446 L452 L456 L463 L477 L523 | L474 L482 L485 L488 L512 L516 L534 L548 | L535 L542 L545 L560 L565 L569 L595 L620 | L589 L621 L625 L628 L629 L641 L649 L681 | L658 L664 L669 L682 L688 L701 L718 L729 | L106 L133 L135 L139 L144 L158 L166 L204 | L170 L187 L191 L195 L199 L210 L230 L270 | L233 L243 L247 L251 L273 L279 L293 L339 | L292 L303 L306 L312 L333 L335 L352 L372 | L347 L366 L370 L387 L395 L400 L407 L447 | L411 L430 L434 L436 L446 L460 L471 L494 | L477 L496 L506 L512 L516 L523 L537 L583 | L534 L542 L545 L548 L572 L576 L594 L608 | L595 L602 L605 L620 L625 L629 L655 L680 | L649 L681 L685 L688 L689 L701 L709 L741 | L104 L133 L138 L151 L154 L158 L164 L211 | L166 L193 L195 L199 L204 L218 L226 L264 | L230 L247 L251 L255 L259 L270 L290 L330 | L293 L303 L307 L311 L333 L339 L353 L399 | L352 L363 L366 L372 L393 L395 L412 L432 | L407 L426 L430 L447 L455 L460 L467 L507 | L471 L490 L494 L496 L506 L520 L531 L554 | L537 L556 L566 L572 L576 L583 L597 L643 | L594 L602 L605 L608 L632 L636 L654 L668 | L655 L662 L665 L680 L685 L689 L715 L740 | L709 L741 L745 L748 L749 L761 L769 L801 | L164 L193 L198 L211 L214 L218 L224 L271 | L226 L253 L255 L259 L264 L278 L286 L324 | L290 L307 L311 L315 L319 L330 L350 L390 | L353 L363 L367 L371 L393 L399 L413 L459 | L412 L423 L426 L432 L453 L455 L472 L492 | L467 L486 L490 L507 L515 L520 L527 L567 | L531 L550 L554 L556 L566 L580 L591 L614 | L597 L616 L626 L632 L636 L643 L657 L703 | L654 L662 L665 L668 L692 L696 L714 L728 | L715 L722 L725 L740 L745 L749 L775 L800 | L165 L198 L214 L217 L225 L241 L277 | L224 L253 L258 L271 L274 L278 L284 L331 | L286 L313 L315 L319 L324 L338 L346 L384 | L350 L367 L371 L375 L379 L390 L410 L450 | L413 L423 L427 L431 L453 L459 L473 L519 | L472 L483 L486 L492 L513 L515 L532 L552 | L527 L546 L550 L567 L575 L580 L587 L627 | L591 L610 L614 L616 L626 L640 L651 L674 | L657 L676 L686 L692 L696 L703 L717 L763 | L714 L722 L725 L728 L752 L756 L774 L788 | L775 L782 L785 L800 L805 L809 L835 L860 | L225 L258 L274 L277 L285 L301 L337 | L284 L313 L318 L331 L334 L338 L344 L391 | L346 L373 L375 L379 L384 L398 L406 L444 | L410 L427 L431 L435 L439 L450 L470 L510 | L473 L483 L487 L491 L513 L519 L533 L579 | L532 L543 L546 L552 L573 L575 L592 L612 | L587 L606 L610 L627 L635 L640 L647 L687 | L651 L670 L674 L676 L686 L700 L711 L734 | L717 L736 L746 L752 L756 L763 L777 L823 | L774 L782 L785 L788 L812 L816 L834 L848 | L285 L318 L334 L337 L345 L361 L397 | L344 L373 L378 L391 L394 L398 L404 L451 | L406 L433 L435 L439 L444 L458 L466 L504 | L470 L487 L491 L495 L499 L510 L530 L570 | L533 L543 L547 L551 L573 L579 L593 L639 | L592 L603 L606 L612 L633 L635 L652 L672 | L647 L666 L670 L687 L695 L700 L707 L747 | L711 L730 L734 L736 L746 L760 L771 L794 | L777 L796 L806 L812 L816 L823 L837 L883 | L288 L348 L359 L360 L361 L420 | L345 L378 L394 L397 L405 L421 L457 | L404 L433 L438 L451 L454 L458 L464 L511 | L466 L493 L495 L499 L504 L518 L526 L564 | L530 L547 L551 L555 L559 L570 L590 L630 | L593 L603 L607 L611 L633 L639 L653 L699 | L652 L663 L666 L672 L693 L695 L712 L732 | L707 L726 L730 L747 L755 L760 L767 L807 | L771 L790 L794 L796 L806 L820 L831 L854 | L837 L856 L866 L872 L876 L883 L897 | L348 L408 L419 L420 L421 L480 | L405 L438 L454 L457 L465 L481 L517 | L464 L493 L498 L511 L514 L518 L524 L571 | L526 L553 L555 L559 L564 L578 L586 L624 | L590 L607 L611 L615 L619 L630 L650 L690 | L653 L663 L667 L671 L693 L699 L713 L759 | L712 L723 L726 L732 L753 L755 L772 L792 | L767 L786 L790 L807 L815 L820 L827 L867 | L831 L850 L854 L856 L866 L880 L891 | L408 L468 L479 L480 L481 L540 | L465 L498 L514 L517 L525 L541 L577 | L524 L553 L558 L571 L574 L578 L584 L631 | L586 L613 L615 L619 L624 L638 L646 L684 | L650 L667 L671 L675 L679 L690 L710 L750 | L713 L723 L727 L731 L753 L759 L773 L819 | L772 L783 L786 L792 L813 L815 L832 L852 | L827 L846 L850 L867 L875 L880 L887 | L468 L528 L539 L540 L541 L600 | L525 L558 L574 L577 L585 L601 L637 | L584 L613 L618 L631 L634 L638 L644 L691 | L646 L673 L675 L679 L684 L698 L706 L744 | L710 L727 L731 L735 L739 L750 L770 L810 | L773 L783 L787 L791 L813 L819 L833 L879 | L832 L843 L846 L852 L873 L875 L892 | L528 L588 L599 L600 L601 L660 | L585 L618 L634 L637 L645 L661 L697 | L644 L673 L678 L691 L694 L698 L704 L751 | L706 L733 L735 L739 L744 L758 L766 L804 | L770 L787 L791 L795 L799 L810 L830 L870 | L833 L843 L847 L851 L873 L879 L893 | L645 L678 L694 L697 L705 L721 L757 | L704 L733 L738 L751 L754 L758 L764 L811 | L766 L793 L795 L799 L804 L818 L826 L864
